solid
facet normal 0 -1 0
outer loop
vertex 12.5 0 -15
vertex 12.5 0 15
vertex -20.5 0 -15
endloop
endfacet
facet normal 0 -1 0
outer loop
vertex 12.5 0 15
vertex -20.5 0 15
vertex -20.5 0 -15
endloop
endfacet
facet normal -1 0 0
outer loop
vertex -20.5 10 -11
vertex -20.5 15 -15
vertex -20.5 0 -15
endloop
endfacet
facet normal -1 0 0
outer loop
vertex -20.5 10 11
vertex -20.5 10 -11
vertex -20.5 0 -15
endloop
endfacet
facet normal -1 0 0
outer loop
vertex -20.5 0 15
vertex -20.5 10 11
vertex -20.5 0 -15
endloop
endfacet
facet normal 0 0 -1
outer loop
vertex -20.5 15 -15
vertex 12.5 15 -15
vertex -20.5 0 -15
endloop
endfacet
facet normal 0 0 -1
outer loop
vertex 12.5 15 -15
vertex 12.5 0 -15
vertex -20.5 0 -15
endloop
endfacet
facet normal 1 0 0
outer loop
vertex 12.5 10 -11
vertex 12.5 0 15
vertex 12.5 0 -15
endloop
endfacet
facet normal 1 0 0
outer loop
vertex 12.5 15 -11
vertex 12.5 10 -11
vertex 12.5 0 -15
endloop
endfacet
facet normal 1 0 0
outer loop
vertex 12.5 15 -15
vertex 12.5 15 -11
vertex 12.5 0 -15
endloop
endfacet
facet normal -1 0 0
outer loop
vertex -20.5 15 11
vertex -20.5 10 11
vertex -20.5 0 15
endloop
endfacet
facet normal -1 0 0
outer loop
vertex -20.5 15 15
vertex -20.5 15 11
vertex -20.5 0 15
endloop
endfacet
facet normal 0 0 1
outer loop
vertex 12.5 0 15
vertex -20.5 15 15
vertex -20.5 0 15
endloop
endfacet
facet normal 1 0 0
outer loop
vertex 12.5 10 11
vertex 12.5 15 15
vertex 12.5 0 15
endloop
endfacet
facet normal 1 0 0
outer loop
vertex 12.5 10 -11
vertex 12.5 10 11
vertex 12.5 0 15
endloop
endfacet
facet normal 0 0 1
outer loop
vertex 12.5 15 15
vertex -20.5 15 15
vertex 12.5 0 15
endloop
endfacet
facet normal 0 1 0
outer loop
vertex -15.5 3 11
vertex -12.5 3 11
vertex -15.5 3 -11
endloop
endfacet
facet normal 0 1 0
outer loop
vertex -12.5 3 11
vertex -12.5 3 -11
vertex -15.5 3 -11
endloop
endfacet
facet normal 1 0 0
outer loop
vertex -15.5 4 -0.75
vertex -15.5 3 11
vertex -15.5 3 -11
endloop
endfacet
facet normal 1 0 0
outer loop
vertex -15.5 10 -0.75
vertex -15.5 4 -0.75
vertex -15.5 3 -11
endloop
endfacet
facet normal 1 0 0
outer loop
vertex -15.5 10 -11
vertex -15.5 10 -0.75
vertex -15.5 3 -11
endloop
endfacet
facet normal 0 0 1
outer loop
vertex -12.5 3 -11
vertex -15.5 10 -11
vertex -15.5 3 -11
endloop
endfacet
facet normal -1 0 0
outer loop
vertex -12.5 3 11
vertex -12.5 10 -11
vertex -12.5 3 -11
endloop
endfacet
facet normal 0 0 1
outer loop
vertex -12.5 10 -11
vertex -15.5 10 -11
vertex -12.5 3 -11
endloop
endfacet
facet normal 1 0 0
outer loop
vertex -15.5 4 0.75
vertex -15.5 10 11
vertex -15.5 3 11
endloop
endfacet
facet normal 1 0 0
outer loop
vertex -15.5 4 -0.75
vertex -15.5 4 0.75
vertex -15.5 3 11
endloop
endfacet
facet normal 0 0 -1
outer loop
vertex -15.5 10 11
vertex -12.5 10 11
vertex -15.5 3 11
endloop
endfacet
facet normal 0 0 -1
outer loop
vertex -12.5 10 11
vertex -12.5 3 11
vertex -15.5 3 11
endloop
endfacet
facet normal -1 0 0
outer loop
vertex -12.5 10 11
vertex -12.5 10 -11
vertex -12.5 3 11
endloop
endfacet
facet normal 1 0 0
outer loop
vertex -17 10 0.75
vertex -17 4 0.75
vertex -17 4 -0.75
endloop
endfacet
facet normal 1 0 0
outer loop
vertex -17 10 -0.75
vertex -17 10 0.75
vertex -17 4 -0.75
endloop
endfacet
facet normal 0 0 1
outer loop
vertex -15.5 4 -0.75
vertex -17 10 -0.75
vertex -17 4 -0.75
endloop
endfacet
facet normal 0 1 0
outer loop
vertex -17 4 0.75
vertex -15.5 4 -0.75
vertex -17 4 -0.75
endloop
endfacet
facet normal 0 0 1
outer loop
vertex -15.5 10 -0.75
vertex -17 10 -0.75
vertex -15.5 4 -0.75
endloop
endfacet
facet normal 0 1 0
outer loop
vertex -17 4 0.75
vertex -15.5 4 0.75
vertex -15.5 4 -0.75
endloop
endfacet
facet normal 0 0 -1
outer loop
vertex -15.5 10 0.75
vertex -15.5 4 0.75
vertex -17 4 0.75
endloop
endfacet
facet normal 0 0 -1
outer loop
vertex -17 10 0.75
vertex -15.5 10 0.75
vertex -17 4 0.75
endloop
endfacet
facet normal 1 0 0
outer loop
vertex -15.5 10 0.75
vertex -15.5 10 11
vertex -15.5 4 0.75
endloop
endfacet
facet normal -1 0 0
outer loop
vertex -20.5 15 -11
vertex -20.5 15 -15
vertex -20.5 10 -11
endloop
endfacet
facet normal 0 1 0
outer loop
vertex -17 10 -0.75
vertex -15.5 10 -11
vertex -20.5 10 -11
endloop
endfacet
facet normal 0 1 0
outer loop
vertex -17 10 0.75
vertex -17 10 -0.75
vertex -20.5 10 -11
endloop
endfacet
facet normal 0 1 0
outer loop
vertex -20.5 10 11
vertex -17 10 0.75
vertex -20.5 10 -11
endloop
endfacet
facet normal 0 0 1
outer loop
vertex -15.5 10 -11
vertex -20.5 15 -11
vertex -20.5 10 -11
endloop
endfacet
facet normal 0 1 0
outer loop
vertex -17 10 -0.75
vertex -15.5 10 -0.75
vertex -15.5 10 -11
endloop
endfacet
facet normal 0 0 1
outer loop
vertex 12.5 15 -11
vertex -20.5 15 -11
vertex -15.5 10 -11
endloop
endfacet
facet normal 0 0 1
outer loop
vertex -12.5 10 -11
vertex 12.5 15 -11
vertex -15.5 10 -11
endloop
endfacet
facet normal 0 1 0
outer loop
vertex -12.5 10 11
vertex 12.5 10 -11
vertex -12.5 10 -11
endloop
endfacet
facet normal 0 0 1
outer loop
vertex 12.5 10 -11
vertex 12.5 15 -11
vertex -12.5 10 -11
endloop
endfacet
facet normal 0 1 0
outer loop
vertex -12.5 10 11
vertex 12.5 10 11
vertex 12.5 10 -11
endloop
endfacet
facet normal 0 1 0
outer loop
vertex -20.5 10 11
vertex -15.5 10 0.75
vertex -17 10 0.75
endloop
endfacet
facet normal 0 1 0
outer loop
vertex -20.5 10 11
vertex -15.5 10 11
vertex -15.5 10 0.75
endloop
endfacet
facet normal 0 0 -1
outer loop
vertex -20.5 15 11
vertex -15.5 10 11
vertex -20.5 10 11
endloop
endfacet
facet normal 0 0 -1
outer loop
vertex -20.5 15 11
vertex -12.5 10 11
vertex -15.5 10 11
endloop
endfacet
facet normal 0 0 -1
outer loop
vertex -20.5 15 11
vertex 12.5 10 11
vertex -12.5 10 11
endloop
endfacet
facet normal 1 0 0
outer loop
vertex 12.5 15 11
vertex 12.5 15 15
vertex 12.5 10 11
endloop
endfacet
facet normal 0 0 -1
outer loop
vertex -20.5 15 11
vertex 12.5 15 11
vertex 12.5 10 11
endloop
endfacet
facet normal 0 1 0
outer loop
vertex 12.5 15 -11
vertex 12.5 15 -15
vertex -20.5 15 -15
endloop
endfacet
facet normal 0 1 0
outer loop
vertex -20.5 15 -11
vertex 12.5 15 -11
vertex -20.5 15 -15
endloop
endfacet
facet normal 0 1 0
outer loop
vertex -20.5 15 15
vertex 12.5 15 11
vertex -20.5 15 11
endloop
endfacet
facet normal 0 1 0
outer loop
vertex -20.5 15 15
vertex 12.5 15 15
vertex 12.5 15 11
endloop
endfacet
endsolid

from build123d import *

# Parameters (mm, degrees)
SKETCH1_W           = 3
SKETCH1_H           = 22
BOSS_EXTRUDE3_DEPTH = 3
SKETCH1_6_W         = 25
SKETCH1_6_H         = 22
SKETCH1_6_W_2       = 5
BOSS_EXTRUDE4_DEPTH = 10
SKETCH1_7_W         = 33
SKETCH1_7_H         = 4
BOSS_EXTRUDE5_DEPTH = 15
SKETCH6_W           = 1.5
SKETCH6_H           = 1.5
CUT_EXTRUDE1_DEPTH  = 6


with BuildPart() as part:
    # Sketch1 → Boss-Extrude3 (new body)
    with BuildSketch(Plane(origin=(0, 0, 0), x_dir=(1, 0, 0), z_dir=(0, 1, 0))):
        with Locations((-14, 0)):
            Rectangle(SKETCH1_W, SKETCH1_H)
    extrude(amount=BOSS_EXTRUDE3_DEPTH)

    # Sketch1<6> → Boss-Extrude4 (add)
    with BuildSketch(Plane(origin=(0, 0, 0), x_dir=(1, 0, 0), z_dir=(0, 1, 0))):
        Rectangle(SKETCH1_6_W, SKETCH1_6_H)
        with Locations((-18, 0)):
            Rectangle(SKETCH1_6_W_2, SKETCH1_6_H)
    extrude(amount=BOSS_EXTRUDE4_DEPTH)

    # Sketch1<7> → Boss-Extrude5 (add)
    with BuildSketch(Plane(origin=(0, 0, 0), x_dir=(1, 0, 0), z_dir=(0, 1, 0))):
        with Locations((-4, -13)):
            Rectangle(SKETCH1_7_W, SKETCH1_7_H)
        with Locations((-4, 13)):
            Rectangle(SKETCH1_7_W, SKETCH1_7_H)
    extrude(amount=BOSS_EXTRUDE5_DEPTH)

    # Sketch6 → Cut-Extrude1 (cut)
    with BuildSketch(Plane(origin=(0, 10, 0), x_dir=(1, 0, 0), z_dir=(0, 1, 0))):
        with Locations((-16.25, 0)):
            Rectangle(SKETCH6_W, SKETCH6_H)
    extrude(amount=-CUT_EXTRUDE1_DEPTH, mode=Mode.SUBTRACT)


solid = part.part
